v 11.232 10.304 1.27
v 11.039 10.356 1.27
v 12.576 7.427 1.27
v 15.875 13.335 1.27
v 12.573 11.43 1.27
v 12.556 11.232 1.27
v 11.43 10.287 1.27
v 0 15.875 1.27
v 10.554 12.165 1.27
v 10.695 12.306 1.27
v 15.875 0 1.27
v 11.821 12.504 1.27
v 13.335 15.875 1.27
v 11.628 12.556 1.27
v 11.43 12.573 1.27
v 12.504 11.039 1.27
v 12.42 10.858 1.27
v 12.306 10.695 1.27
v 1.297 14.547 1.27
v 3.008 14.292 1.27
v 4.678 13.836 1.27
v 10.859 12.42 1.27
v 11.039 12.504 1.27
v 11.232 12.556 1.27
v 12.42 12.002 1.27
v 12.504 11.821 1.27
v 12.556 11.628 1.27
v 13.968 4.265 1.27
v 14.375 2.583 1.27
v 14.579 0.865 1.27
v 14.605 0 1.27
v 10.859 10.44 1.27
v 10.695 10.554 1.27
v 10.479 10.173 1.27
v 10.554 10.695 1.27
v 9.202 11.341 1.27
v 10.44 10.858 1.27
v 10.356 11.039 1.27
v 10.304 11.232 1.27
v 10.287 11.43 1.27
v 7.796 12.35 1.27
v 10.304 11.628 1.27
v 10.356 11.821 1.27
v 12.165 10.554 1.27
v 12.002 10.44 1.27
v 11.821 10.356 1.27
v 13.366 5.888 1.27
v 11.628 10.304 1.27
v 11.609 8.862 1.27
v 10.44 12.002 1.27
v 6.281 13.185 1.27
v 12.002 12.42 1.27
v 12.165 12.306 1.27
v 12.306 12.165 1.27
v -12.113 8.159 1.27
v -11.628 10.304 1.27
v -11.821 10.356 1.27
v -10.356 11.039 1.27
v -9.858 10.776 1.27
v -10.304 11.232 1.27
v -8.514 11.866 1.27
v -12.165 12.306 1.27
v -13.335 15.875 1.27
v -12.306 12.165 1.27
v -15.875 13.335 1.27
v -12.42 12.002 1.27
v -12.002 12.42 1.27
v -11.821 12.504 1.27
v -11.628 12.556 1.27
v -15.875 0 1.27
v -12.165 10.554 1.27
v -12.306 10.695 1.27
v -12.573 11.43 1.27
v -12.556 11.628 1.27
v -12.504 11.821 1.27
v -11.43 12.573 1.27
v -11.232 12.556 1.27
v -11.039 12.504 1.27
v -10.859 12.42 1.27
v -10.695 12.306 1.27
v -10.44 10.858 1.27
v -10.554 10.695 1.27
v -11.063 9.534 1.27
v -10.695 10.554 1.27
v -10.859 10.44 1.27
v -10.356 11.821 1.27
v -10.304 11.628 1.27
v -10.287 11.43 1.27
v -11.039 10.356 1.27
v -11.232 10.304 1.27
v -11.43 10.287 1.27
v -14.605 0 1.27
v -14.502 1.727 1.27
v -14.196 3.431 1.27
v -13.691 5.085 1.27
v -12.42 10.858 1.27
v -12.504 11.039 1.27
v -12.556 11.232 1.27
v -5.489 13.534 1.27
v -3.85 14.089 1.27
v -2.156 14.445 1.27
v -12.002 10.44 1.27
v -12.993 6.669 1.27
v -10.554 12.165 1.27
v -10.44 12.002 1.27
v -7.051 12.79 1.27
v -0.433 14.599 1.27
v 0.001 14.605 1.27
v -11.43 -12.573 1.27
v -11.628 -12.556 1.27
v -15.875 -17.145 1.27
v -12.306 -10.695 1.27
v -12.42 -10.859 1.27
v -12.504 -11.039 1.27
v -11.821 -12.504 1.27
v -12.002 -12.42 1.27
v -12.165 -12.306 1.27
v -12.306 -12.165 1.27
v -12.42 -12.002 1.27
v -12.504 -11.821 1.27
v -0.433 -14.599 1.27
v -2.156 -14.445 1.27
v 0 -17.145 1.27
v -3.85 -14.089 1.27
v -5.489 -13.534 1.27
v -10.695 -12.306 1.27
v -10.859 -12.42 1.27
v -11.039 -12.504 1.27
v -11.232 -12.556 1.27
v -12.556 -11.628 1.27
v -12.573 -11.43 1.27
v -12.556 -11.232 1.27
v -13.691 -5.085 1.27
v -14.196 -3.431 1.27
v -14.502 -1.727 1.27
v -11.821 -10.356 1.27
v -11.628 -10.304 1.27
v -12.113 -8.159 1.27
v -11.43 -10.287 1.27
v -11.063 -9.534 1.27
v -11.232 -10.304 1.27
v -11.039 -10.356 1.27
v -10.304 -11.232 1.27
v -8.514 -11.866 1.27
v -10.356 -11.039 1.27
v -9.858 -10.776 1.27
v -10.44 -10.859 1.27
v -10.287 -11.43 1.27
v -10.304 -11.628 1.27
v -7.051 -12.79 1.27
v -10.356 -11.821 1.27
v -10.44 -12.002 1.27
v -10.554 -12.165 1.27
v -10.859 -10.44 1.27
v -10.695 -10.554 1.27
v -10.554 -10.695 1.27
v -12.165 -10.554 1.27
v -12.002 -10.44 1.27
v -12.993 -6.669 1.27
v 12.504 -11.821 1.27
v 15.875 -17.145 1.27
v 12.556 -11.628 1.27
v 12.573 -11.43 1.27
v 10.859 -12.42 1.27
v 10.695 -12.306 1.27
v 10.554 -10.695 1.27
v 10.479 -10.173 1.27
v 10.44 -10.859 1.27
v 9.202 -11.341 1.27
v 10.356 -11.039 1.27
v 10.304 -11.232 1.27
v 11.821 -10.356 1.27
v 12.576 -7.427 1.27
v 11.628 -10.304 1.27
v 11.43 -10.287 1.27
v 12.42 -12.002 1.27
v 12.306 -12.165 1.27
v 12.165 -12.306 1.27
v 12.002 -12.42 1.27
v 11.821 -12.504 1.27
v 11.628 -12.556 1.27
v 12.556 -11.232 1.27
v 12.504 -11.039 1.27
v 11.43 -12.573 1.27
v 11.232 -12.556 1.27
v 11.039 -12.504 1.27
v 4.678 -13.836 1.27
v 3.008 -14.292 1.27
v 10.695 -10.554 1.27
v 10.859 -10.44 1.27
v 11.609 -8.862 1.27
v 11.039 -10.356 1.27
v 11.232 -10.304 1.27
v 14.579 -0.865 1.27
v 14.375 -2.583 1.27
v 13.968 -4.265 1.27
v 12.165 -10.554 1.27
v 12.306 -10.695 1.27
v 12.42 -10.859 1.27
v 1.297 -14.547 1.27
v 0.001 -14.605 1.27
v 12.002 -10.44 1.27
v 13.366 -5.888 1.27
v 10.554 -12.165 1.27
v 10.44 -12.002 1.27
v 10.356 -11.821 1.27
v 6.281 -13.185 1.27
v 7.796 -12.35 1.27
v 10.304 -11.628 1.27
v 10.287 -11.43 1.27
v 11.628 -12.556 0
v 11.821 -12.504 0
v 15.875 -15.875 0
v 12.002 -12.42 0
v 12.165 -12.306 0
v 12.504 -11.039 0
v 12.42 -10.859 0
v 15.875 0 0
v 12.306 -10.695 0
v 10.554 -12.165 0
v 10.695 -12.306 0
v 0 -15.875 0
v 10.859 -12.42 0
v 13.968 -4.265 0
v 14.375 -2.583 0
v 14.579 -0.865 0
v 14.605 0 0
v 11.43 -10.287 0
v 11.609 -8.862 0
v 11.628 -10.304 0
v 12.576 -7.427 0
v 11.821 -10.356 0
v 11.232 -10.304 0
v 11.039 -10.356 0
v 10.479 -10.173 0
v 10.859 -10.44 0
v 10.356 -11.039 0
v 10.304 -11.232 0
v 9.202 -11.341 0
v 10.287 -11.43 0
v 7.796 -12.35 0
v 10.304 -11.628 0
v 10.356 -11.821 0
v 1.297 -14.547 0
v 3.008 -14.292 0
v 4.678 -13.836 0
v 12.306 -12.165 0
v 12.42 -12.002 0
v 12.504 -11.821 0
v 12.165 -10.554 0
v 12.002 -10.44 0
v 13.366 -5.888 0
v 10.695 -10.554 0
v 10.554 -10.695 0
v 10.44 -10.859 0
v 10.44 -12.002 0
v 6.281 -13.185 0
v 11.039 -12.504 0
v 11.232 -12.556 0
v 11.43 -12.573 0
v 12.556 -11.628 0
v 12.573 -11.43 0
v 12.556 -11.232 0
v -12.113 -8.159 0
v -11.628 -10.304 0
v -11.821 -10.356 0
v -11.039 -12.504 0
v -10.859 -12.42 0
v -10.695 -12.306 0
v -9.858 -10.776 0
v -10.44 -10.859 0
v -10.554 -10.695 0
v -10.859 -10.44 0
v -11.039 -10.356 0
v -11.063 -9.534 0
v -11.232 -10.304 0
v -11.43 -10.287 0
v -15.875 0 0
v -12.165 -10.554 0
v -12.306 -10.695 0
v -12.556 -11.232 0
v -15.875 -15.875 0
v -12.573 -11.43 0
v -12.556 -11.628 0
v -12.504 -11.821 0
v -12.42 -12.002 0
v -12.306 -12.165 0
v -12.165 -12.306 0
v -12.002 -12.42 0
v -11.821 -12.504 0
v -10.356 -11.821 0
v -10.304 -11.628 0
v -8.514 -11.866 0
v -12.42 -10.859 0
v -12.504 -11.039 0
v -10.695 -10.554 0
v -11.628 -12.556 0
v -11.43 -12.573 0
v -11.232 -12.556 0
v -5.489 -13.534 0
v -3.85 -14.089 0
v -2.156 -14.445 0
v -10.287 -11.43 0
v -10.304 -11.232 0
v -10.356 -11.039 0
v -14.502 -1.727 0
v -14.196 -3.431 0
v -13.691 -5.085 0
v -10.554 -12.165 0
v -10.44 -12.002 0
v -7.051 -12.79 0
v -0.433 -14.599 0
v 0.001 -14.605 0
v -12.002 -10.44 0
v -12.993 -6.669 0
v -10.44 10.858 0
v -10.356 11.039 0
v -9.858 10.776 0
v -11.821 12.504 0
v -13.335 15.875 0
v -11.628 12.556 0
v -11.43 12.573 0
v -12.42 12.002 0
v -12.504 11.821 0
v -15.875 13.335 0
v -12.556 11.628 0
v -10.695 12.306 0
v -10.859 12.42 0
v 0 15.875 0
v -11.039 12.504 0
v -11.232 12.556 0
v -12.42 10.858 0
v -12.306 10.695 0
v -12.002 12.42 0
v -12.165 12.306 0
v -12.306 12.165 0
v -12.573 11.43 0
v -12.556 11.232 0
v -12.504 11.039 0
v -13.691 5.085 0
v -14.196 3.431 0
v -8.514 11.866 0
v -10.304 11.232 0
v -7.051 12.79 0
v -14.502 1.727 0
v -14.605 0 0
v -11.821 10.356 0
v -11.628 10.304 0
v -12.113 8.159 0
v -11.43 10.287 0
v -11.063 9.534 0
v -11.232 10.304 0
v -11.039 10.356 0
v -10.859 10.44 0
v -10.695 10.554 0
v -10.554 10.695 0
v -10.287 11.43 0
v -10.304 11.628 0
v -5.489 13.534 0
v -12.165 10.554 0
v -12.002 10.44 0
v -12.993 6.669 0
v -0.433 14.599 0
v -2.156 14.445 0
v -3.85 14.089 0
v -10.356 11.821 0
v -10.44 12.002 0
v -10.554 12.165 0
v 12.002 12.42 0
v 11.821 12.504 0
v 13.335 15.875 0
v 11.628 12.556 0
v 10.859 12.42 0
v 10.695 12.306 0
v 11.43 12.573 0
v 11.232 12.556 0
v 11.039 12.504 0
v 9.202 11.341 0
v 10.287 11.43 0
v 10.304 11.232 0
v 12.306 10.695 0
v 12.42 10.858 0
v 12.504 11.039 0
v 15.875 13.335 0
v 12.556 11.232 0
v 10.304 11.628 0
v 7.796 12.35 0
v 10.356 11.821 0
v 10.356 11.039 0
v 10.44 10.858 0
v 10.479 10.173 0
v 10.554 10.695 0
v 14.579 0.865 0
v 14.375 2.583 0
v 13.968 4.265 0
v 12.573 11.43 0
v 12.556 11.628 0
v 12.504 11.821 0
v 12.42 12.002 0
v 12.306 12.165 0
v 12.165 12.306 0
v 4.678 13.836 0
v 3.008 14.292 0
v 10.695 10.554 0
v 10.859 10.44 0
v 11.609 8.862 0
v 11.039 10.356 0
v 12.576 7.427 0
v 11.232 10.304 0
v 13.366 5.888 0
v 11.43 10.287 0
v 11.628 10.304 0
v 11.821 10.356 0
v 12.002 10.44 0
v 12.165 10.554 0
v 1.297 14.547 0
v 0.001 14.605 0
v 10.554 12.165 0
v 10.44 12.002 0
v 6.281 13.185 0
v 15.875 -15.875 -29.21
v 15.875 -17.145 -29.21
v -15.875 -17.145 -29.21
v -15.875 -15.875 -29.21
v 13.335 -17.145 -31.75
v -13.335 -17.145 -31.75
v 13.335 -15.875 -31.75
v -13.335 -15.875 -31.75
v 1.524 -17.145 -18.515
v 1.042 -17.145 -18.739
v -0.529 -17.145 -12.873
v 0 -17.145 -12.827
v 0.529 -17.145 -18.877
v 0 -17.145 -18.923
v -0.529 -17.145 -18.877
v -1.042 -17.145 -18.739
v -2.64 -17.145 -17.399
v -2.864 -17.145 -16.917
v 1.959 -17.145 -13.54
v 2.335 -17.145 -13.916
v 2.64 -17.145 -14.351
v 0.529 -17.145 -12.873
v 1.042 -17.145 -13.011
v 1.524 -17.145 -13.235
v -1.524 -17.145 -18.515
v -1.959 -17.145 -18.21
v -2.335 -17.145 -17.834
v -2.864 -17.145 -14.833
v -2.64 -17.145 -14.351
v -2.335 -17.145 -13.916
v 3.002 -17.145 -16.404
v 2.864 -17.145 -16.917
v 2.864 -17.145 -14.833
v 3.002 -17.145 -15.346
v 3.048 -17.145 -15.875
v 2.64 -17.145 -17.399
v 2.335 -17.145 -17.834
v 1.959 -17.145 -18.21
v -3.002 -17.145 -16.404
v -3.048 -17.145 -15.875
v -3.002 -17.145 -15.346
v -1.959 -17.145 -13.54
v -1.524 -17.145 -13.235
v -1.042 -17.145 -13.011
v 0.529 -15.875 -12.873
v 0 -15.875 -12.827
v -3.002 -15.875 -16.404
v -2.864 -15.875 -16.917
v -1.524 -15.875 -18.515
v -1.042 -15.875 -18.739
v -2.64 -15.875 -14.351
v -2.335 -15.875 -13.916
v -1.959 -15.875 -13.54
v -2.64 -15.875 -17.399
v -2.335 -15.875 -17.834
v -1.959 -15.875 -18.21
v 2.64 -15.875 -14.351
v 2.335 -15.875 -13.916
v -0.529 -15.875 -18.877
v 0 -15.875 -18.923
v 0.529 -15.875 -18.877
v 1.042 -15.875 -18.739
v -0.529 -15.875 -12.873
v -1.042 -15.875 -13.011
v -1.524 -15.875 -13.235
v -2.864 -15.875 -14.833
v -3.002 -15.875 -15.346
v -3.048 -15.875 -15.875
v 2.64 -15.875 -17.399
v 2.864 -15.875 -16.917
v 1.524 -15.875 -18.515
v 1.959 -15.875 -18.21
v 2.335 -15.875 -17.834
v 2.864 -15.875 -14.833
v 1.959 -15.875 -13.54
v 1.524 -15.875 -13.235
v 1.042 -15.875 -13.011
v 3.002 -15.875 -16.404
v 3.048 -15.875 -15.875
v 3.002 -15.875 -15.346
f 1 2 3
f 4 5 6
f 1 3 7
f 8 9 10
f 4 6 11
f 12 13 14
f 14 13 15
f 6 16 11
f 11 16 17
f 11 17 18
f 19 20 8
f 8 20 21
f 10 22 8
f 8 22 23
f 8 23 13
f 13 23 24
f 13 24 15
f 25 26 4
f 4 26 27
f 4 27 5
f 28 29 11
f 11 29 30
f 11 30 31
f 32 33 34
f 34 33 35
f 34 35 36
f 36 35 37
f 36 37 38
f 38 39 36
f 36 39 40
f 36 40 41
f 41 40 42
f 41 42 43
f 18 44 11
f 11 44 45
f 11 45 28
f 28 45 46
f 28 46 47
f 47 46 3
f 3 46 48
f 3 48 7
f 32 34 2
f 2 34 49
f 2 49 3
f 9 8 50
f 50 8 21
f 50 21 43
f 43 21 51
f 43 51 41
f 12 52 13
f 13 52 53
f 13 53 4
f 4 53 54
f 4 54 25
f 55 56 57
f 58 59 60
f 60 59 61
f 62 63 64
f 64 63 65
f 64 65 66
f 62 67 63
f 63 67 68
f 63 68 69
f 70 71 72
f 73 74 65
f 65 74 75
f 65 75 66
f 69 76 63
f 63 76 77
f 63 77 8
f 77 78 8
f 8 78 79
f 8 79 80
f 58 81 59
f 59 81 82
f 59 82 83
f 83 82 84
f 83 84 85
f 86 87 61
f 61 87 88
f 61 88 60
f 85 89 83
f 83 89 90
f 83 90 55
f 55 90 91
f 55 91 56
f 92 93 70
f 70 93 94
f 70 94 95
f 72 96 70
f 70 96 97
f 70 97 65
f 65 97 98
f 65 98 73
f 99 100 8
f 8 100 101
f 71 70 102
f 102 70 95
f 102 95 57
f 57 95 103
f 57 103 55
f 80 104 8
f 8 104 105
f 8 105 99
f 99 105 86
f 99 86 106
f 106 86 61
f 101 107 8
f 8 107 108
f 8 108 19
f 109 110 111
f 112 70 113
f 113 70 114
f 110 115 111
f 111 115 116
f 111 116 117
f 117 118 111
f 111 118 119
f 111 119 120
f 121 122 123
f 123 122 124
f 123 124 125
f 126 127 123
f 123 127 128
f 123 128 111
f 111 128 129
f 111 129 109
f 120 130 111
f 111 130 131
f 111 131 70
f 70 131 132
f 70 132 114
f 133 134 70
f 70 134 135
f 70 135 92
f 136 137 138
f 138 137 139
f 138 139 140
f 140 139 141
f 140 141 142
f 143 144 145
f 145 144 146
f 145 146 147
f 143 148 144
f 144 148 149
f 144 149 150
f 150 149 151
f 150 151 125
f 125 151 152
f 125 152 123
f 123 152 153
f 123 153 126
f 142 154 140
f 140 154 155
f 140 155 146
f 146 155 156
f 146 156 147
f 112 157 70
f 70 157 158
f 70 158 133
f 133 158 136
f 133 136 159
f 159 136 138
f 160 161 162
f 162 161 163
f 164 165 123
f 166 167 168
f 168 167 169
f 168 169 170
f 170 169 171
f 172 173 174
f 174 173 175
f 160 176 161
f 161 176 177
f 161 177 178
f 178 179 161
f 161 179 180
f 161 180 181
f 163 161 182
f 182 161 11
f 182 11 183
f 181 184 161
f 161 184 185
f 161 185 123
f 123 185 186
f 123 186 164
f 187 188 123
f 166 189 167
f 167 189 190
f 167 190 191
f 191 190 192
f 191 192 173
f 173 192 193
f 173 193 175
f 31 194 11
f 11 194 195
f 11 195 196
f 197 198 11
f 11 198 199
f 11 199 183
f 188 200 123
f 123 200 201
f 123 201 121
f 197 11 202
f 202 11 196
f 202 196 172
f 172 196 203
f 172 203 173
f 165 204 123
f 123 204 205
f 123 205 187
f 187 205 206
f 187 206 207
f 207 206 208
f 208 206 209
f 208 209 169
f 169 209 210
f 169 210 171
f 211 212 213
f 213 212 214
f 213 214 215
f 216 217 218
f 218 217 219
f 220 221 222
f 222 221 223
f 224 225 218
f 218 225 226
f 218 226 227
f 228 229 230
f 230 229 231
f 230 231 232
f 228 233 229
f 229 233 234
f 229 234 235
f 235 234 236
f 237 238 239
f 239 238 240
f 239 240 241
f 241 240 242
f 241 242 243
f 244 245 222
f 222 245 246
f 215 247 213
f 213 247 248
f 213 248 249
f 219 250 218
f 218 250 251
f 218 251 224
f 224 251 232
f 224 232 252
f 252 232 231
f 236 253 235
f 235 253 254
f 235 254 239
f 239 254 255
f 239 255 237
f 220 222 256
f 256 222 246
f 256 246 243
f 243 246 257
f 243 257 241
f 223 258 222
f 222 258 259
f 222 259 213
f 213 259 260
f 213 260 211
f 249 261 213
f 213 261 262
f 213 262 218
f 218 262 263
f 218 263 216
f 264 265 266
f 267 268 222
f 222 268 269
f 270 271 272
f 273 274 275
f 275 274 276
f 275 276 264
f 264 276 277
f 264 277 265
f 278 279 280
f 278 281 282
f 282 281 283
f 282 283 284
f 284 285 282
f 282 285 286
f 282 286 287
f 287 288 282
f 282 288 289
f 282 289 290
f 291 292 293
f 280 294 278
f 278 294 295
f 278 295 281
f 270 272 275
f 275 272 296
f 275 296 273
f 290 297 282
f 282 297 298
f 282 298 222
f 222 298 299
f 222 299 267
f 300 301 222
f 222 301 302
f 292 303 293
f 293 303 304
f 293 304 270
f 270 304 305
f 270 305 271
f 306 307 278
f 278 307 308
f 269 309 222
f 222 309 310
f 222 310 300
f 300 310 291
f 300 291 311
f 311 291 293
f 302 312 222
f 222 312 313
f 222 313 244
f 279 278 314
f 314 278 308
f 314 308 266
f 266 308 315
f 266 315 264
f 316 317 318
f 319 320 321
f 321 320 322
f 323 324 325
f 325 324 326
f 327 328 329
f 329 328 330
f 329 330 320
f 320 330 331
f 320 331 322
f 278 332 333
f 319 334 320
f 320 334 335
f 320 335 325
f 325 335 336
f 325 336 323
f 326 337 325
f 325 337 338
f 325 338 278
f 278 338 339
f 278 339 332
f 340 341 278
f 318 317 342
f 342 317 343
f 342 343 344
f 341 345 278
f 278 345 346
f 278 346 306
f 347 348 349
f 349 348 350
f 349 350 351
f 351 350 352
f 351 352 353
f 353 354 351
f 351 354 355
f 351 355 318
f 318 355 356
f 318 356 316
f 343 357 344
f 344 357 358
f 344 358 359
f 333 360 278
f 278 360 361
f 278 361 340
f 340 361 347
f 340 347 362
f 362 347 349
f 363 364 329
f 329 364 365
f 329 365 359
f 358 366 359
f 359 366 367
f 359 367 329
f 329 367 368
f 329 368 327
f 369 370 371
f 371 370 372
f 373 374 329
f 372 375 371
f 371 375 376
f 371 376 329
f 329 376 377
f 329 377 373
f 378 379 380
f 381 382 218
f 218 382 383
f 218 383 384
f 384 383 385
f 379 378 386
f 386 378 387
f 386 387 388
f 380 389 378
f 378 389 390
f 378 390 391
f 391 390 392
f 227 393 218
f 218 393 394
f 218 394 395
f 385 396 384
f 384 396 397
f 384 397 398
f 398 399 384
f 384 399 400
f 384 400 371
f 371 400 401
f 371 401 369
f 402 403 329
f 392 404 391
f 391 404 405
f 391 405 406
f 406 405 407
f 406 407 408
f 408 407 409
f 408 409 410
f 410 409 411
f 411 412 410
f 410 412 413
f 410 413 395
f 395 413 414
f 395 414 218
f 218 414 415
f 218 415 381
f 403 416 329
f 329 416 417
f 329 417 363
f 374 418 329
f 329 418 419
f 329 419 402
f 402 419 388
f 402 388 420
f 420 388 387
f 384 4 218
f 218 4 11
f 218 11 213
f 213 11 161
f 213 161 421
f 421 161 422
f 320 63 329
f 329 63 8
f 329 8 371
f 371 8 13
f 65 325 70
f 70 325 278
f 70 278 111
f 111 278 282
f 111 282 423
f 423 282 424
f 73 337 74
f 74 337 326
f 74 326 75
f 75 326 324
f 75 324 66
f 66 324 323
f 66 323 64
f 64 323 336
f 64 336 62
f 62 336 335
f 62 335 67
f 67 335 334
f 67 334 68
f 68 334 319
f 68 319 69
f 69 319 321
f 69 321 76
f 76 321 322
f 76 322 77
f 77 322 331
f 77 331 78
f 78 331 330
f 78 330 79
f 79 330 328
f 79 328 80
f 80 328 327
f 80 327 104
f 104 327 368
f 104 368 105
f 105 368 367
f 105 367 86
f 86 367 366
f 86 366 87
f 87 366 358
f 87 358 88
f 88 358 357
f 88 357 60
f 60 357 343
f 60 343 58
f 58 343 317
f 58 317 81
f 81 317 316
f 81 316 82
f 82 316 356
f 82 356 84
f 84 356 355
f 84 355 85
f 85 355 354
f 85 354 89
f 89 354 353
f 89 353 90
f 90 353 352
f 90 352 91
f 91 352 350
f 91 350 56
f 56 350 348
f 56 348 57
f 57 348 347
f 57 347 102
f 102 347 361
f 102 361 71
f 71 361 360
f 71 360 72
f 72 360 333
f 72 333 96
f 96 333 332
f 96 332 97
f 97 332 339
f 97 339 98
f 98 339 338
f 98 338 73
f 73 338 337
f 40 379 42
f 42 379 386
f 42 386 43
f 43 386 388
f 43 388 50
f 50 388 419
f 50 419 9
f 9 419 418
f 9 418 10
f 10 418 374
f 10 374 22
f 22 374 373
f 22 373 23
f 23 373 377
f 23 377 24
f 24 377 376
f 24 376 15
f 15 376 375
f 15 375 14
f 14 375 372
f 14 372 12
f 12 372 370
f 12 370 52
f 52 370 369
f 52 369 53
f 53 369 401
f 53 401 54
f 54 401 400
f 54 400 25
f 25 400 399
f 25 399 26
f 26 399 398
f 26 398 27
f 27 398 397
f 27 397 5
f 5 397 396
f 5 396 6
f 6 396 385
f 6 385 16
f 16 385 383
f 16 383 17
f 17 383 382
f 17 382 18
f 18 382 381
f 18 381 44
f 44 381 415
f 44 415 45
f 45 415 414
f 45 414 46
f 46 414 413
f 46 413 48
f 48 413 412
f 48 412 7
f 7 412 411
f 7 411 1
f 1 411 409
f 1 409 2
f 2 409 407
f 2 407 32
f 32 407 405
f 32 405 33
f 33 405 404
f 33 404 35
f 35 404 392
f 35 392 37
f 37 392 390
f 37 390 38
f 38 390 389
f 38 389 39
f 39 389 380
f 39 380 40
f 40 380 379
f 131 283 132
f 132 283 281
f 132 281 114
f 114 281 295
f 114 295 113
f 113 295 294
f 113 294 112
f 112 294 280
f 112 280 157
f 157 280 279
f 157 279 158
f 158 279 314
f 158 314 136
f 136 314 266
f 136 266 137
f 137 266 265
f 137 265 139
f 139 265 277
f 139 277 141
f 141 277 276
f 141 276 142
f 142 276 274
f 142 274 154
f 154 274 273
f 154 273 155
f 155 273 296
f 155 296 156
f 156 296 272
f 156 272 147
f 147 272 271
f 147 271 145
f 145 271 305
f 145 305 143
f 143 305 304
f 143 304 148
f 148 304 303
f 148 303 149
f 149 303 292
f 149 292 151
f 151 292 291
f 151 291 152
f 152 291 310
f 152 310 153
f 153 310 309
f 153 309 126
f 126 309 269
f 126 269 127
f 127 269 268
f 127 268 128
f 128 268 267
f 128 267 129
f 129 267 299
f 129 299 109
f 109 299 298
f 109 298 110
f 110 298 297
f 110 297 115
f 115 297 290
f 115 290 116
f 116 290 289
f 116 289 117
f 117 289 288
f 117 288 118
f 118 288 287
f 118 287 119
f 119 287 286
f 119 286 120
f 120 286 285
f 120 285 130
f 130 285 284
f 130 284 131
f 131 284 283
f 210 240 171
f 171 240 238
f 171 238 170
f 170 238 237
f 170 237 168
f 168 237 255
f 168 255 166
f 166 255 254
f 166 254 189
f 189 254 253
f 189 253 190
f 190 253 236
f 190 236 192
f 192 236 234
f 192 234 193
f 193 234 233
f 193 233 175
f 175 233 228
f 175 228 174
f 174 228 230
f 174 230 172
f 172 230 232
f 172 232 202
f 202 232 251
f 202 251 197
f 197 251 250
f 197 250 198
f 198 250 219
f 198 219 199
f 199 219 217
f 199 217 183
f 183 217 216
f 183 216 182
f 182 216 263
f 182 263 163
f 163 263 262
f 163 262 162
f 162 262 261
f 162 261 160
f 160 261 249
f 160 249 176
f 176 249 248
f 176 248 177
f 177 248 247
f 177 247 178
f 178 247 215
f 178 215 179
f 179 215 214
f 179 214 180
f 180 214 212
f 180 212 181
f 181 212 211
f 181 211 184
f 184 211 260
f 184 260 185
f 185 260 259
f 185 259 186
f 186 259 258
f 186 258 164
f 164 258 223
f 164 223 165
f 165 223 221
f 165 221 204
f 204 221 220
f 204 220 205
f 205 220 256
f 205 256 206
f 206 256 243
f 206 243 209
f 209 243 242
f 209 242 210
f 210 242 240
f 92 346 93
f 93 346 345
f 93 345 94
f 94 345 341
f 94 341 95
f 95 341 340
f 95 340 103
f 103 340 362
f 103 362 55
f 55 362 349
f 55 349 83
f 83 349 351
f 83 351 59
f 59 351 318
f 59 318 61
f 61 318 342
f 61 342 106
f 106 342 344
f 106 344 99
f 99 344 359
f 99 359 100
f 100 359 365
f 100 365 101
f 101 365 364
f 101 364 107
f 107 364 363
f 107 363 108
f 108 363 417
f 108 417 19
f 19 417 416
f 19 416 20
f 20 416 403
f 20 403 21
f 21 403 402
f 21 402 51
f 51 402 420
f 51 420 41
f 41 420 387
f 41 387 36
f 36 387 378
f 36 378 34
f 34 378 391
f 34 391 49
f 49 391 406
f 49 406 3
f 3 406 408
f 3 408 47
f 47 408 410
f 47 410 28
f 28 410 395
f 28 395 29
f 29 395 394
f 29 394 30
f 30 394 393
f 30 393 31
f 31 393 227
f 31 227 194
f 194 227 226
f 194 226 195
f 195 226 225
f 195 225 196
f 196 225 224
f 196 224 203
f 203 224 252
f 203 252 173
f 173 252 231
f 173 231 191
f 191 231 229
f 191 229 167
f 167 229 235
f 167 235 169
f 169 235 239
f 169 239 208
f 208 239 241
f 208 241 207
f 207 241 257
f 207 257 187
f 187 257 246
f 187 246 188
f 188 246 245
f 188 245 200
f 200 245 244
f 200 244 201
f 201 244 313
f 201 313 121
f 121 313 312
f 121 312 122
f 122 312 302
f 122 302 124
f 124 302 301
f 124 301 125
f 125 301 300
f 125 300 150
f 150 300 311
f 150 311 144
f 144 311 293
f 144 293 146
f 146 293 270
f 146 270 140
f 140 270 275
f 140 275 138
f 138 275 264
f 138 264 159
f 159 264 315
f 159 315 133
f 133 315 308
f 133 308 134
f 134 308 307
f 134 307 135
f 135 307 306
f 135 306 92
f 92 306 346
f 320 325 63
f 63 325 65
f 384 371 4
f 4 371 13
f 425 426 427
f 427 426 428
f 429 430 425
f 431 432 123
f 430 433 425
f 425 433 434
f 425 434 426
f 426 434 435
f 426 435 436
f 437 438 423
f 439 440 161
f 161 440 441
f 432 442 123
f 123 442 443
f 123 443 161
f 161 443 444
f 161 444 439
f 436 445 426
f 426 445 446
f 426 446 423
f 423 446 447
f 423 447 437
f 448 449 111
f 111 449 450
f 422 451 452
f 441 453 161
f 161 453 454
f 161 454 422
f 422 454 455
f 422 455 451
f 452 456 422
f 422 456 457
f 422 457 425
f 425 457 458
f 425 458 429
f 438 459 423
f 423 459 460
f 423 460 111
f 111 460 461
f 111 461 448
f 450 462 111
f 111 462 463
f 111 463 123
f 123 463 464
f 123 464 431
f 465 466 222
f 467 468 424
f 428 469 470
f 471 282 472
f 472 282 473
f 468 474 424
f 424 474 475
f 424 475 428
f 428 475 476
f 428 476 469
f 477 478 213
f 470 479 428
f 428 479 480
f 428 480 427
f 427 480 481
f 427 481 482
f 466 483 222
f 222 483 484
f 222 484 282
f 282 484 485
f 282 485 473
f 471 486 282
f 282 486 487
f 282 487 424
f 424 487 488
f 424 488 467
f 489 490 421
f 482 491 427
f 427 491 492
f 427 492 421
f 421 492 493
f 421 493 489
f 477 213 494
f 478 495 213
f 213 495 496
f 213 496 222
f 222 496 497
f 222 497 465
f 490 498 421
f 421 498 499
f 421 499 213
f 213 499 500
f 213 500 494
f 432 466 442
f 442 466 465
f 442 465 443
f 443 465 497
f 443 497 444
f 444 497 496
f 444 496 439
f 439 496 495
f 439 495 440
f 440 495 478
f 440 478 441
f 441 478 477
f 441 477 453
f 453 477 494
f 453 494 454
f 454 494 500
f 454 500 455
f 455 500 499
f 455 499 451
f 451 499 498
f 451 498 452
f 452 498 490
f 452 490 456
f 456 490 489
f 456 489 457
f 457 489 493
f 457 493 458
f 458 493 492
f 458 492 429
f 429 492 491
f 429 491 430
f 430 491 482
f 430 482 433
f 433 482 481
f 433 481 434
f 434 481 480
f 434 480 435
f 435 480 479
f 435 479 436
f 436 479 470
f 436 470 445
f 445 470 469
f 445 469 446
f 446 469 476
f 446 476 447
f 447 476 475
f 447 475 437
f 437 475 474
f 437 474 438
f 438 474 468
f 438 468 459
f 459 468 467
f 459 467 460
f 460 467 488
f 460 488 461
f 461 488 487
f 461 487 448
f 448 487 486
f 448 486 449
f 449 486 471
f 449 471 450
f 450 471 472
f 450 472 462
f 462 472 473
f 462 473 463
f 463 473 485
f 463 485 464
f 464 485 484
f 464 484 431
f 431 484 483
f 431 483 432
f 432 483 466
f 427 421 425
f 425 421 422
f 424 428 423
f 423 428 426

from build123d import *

# Parameters (mm, degrees)
SKETCH1_W           = 31.75
SKETCH1_H           = 31.75
SKETCH1_R           = 1.143
SKETCH1_R_2         = 14.605
BOSS_EXTRUDE1_DEPTH = 1.27
CHAMFER1_SIZE       = 2.54
SKETCH2_W           = 31.75
SKETCH2_H           = 33.02
BOSS_EXTRUDE2_DEPTH = 1.27
SKETCH3_R           = 3.048
CUT_EXTRUDE1_DEPTH  = 1.27
CHAMFER2_SIZE       = 2.54


with BuildPart() as part:
    # Sketch1 → Boss-Extrude1 (new body)
    with BuildSketch(Plane.XY):
        Rectangle(SKETCH1_W, SKETCH1_H)
        with Locations((-11.43, 11.43)):
            Circle(SKETCH1_R, mode=Mode.SUBTRACT)
        with Locations((11.43, 11.43)):
            Circle(SKETCH1_R, mode=Mode.SUBTRACT)
        with Locations((-11.43, -11.43)):
            Circle(SKETCH1_R, mode=Mode.SUBTRACT)
        with Locations((11.43, -11.43)):
            Circle(SKETCH1_R, mode=Mode.SUBTRACT)
        Circle(SKETCH1_R_2, mode=Mode.SUBTRACT)
    extrude(amount=BOSS_EXTRUDE1_DEPTH)

    # Chamfer1
    chamfer1_edges = [part.edges().sort_by_distance(p)[0] for p in [
        (-15.875, 15.875, 0.635),
        (15.875, 15.875, 0.635),
    ]]
    chamfer(chamfer1_edges, length=CHAMFER1_SIZE)

    # Sketch2 → Boss-Extrude2 (add)
    with BuildSketch(Plane.XZ.offset(15.875)):
        with Locations((0, -15.24)):
            Rectangle(SKETCH2_W, SKETCH2_H)
    extrude(amount=BOSS_EXTRUDE2_DEPTH)

    # Sketch3 → Cut-Extrude1 (cut)
    with BuildSketch(Plane(origin=(0, -15.875, 0), x_dir=(1, 0, 0), z_dir=(0, 1, 0))):
        with Locations(Location((0, 15.875, 0), (0, 0, 270))):
            Circle(SKETCH3_R)
    extrude(amount=-CUT_EXTRUDE1_DEPTH, mode=Mode.SUBTRACT)

    # Chamfer2
    chamfer2_edges = [part.edges().sort_by_distance(p)[0] for p in [
        (15.875, -16.51, -31.75),
        (-15.875, -16.51, -31.75),
    ]]
    chamfer(chamfer2_edges, length=CHAMFER2_SIZE)


solid = part.part
